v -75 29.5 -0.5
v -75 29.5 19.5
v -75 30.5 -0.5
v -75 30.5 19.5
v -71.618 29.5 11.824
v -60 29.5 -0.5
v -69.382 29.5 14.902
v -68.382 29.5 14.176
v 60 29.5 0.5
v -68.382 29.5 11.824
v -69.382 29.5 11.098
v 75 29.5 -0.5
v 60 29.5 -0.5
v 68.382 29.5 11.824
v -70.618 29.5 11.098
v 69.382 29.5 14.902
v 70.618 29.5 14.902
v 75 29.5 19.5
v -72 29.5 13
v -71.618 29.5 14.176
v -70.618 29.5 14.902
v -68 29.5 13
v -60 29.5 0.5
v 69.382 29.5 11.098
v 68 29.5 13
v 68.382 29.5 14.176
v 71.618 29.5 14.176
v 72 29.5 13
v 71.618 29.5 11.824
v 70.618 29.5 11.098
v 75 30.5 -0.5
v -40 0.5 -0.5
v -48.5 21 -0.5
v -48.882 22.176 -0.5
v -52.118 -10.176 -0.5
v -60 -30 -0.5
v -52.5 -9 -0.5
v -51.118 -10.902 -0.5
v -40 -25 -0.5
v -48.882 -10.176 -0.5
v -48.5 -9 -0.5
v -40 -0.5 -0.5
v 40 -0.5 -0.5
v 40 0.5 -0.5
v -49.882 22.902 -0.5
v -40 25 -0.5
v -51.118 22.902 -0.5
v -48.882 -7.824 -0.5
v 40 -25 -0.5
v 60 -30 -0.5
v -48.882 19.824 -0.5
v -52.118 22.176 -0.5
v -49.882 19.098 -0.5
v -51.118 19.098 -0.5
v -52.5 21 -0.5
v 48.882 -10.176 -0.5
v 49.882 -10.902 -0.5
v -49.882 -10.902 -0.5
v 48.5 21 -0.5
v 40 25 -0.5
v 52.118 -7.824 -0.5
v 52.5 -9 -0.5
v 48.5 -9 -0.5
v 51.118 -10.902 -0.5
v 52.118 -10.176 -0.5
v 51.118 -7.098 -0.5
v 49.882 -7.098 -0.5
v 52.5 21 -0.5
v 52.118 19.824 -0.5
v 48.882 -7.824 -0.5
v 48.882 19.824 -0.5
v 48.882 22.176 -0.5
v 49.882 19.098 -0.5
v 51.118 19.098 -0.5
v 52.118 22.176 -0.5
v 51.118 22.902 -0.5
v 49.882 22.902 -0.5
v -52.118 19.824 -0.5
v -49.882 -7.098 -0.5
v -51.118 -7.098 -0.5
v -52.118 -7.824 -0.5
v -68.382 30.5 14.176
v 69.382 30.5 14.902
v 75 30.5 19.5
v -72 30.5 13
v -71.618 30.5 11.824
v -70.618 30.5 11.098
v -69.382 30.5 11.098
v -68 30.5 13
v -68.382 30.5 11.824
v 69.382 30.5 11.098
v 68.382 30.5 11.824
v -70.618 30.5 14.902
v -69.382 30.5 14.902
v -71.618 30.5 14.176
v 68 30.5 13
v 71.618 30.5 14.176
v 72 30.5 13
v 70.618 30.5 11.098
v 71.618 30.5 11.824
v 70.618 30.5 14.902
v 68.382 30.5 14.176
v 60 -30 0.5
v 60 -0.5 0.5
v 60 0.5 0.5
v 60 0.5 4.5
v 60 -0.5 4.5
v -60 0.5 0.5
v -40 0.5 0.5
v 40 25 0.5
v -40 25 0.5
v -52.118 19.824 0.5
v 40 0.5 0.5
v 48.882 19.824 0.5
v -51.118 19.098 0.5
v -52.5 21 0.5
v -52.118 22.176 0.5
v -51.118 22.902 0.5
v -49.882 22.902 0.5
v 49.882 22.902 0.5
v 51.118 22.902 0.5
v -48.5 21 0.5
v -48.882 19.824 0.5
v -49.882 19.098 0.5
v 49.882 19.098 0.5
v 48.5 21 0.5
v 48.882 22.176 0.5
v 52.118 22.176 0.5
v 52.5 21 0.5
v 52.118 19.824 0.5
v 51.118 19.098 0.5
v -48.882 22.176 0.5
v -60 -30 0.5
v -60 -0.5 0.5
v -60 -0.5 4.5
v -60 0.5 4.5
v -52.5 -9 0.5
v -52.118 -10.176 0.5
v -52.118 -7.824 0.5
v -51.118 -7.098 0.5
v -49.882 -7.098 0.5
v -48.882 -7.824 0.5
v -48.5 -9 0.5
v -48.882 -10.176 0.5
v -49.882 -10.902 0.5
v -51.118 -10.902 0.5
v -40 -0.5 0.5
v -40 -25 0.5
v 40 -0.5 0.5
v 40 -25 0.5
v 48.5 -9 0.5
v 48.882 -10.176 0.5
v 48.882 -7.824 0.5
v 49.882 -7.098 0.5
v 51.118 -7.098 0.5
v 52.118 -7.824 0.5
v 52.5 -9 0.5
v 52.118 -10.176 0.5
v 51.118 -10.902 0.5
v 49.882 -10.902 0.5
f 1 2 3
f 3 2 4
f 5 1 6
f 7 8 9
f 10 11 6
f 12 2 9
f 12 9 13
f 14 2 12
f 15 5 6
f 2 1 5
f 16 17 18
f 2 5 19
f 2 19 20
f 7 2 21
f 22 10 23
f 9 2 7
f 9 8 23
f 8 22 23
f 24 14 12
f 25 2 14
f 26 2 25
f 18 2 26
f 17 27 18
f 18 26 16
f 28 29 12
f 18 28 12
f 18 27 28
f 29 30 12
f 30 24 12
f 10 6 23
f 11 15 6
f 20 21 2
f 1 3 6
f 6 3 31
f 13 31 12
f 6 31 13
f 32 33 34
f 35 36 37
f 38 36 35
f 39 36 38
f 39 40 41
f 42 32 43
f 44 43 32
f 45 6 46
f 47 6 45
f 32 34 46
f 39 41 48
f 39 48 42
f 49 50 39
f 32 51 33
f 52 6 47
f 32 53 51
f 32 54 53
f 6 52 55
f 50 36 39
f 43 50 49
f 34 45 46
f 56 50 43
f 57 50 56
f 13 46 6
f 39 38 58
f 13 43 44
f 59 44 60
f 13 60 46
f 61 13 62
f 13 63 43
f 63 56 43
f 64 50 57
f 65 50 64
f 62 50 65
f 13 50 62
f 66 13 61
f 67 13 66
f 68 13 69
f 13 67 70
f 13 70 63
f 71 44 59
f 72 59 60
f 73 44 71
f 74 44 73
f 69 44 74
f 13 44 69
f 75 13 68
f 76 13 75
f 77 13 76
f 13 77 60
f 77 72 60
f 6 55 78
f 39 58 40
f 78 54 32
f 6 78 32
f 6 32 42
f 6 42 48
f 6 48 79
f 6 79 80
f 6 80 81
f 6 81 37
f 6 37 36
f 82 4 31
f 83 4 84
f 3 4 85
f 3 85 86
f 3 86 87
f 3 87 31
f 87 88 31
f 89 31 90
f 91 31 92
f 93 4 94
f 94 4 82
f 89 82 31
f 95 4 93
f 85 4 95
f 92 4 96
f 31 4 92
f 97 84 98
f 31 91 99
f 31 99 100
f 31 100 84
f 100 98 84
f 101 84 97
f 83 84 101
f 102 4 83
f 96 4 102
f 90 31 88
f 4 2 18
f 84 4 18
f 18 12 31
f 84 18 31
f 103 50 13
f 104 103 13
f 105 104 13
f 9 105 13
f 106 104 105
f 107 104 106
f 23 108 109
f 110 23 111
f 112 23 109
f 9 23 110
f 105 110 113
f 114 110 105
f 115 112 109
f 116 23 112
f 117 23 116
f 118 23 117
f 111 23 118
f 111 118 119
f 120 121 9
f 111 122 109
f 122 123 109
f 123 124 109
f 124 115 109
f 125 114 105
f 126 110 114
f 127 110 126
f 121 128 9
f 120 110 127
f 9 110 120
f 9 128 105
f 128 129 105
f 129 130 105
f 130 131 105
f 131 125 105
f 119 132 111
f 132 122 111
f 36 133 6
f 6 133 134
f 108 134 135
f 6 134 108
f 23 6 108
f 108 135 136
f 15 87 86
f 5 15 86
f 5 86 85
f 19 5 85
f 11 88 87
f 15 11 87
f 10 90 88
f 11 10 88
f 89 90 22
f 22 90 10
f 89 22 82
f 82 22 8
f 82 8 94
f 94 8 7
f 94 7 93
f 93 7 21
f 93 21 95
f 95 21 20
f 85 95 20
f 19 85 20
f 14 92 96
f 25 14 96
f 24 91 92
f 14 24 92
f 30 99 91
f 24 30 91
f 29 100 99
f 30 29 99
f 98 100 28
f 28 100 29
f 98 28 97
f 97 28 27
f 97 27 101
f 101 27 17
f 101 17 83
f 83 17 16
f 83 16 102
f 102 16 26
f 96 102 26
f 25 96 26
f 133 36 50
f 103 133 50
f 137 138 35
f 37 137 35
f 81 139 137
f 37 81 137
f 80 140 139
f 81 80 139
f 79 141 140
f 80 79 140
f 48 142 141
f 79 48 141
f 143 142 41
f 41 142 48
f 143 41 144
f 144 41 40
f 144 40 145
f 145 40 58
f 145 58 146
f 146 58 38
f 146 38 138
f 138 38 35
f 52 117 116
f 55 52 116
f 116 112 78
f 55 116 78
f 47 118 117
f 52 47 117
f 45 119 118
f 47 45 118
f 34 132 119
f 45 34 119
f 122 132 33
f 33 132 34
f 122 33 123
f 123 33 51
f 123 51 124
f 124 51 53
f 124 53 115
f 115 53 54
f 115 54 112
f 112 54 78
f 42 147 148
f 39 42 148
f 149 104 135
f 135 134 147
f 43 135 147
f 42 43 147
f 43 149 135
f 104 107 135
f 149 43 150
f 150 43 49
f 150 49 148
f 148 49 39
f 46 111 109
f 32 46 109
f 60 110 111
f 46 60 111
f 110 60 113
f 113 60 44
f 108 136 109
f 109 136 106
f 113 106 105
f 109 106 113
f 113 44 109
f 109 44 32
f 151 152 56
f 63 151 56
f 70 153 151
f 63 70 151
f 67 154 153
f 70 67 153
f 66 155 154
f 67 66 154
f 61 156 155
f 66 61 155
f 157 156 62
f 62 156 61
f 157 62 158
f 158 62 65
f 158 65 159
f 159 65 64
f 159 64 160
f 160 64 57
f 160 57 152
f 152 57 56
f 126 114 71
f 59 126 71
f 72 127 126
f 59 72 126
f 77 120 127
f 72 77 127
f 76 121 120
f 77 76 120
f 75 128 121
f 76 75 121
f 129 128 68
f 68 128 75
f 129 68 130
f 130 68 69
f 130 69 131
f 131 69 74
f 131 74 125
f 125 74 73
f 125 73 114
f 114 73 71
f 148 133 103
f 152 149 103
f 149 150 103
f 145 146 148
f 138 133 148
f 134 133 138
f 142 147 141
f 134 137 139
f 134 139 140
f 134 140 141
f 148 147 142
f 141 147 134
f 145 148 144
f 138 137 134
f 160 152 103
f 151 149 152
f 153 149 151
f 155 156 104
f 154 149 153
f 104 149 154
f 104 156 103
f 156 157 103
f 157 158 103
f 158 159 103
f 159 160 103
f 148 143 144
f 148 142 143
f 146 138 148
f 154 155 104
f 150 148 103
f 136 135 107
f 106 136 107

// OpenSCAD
hdd_width = 120;
mount_width = 150;
height = 60;
horizontal_padding = 20;
vertical_padding = 5;

hdd_hole_spacing = 101;
mount_hole_spacing = 140;

module frame() { 
	difference() {
		cube([hdd_width, height, 1], center=true);
		cube([hdd_width - (2 * horizontal_padding), height - (2 * vertical_padding), 2], center=true);
	}
	
	translate([0, 0, 2])
		cube([hdd_width, 1, 5], center=true);
	
	
	translate([0, height / 2, 9.5])
		cube([mount_width, 1, 20], center=true);
}

module hdd_holes(z) {
	translate([-(hdd_hole_spacing / 2), z + 6, 0])
		cylinder(r=2, h=2, center=true, $fn=10);
	translate([hdd_hole_spacing / 2, z + 6, 0])
		cylinder(r=2, h=2, center=true, $fn=10);
}

module mount_holes(y) {
	translate([-(mount_hole_spacing / 2), height / 2, y])
		rotate([90, 0, 0])
			cylinder(r=2, h=2, center=true, $fn=10);
	translate([mount_hole_spacing / 2, height / 2, y])
		rotate([90, 0, 0])
			cylinder(r=2, h=2, center=true, $fn=10);
}

difference() {
	frame();

	hdd_holes(-(height / 4));
	hdd_holes(height / 4);

	mount_holes(13);	
}
